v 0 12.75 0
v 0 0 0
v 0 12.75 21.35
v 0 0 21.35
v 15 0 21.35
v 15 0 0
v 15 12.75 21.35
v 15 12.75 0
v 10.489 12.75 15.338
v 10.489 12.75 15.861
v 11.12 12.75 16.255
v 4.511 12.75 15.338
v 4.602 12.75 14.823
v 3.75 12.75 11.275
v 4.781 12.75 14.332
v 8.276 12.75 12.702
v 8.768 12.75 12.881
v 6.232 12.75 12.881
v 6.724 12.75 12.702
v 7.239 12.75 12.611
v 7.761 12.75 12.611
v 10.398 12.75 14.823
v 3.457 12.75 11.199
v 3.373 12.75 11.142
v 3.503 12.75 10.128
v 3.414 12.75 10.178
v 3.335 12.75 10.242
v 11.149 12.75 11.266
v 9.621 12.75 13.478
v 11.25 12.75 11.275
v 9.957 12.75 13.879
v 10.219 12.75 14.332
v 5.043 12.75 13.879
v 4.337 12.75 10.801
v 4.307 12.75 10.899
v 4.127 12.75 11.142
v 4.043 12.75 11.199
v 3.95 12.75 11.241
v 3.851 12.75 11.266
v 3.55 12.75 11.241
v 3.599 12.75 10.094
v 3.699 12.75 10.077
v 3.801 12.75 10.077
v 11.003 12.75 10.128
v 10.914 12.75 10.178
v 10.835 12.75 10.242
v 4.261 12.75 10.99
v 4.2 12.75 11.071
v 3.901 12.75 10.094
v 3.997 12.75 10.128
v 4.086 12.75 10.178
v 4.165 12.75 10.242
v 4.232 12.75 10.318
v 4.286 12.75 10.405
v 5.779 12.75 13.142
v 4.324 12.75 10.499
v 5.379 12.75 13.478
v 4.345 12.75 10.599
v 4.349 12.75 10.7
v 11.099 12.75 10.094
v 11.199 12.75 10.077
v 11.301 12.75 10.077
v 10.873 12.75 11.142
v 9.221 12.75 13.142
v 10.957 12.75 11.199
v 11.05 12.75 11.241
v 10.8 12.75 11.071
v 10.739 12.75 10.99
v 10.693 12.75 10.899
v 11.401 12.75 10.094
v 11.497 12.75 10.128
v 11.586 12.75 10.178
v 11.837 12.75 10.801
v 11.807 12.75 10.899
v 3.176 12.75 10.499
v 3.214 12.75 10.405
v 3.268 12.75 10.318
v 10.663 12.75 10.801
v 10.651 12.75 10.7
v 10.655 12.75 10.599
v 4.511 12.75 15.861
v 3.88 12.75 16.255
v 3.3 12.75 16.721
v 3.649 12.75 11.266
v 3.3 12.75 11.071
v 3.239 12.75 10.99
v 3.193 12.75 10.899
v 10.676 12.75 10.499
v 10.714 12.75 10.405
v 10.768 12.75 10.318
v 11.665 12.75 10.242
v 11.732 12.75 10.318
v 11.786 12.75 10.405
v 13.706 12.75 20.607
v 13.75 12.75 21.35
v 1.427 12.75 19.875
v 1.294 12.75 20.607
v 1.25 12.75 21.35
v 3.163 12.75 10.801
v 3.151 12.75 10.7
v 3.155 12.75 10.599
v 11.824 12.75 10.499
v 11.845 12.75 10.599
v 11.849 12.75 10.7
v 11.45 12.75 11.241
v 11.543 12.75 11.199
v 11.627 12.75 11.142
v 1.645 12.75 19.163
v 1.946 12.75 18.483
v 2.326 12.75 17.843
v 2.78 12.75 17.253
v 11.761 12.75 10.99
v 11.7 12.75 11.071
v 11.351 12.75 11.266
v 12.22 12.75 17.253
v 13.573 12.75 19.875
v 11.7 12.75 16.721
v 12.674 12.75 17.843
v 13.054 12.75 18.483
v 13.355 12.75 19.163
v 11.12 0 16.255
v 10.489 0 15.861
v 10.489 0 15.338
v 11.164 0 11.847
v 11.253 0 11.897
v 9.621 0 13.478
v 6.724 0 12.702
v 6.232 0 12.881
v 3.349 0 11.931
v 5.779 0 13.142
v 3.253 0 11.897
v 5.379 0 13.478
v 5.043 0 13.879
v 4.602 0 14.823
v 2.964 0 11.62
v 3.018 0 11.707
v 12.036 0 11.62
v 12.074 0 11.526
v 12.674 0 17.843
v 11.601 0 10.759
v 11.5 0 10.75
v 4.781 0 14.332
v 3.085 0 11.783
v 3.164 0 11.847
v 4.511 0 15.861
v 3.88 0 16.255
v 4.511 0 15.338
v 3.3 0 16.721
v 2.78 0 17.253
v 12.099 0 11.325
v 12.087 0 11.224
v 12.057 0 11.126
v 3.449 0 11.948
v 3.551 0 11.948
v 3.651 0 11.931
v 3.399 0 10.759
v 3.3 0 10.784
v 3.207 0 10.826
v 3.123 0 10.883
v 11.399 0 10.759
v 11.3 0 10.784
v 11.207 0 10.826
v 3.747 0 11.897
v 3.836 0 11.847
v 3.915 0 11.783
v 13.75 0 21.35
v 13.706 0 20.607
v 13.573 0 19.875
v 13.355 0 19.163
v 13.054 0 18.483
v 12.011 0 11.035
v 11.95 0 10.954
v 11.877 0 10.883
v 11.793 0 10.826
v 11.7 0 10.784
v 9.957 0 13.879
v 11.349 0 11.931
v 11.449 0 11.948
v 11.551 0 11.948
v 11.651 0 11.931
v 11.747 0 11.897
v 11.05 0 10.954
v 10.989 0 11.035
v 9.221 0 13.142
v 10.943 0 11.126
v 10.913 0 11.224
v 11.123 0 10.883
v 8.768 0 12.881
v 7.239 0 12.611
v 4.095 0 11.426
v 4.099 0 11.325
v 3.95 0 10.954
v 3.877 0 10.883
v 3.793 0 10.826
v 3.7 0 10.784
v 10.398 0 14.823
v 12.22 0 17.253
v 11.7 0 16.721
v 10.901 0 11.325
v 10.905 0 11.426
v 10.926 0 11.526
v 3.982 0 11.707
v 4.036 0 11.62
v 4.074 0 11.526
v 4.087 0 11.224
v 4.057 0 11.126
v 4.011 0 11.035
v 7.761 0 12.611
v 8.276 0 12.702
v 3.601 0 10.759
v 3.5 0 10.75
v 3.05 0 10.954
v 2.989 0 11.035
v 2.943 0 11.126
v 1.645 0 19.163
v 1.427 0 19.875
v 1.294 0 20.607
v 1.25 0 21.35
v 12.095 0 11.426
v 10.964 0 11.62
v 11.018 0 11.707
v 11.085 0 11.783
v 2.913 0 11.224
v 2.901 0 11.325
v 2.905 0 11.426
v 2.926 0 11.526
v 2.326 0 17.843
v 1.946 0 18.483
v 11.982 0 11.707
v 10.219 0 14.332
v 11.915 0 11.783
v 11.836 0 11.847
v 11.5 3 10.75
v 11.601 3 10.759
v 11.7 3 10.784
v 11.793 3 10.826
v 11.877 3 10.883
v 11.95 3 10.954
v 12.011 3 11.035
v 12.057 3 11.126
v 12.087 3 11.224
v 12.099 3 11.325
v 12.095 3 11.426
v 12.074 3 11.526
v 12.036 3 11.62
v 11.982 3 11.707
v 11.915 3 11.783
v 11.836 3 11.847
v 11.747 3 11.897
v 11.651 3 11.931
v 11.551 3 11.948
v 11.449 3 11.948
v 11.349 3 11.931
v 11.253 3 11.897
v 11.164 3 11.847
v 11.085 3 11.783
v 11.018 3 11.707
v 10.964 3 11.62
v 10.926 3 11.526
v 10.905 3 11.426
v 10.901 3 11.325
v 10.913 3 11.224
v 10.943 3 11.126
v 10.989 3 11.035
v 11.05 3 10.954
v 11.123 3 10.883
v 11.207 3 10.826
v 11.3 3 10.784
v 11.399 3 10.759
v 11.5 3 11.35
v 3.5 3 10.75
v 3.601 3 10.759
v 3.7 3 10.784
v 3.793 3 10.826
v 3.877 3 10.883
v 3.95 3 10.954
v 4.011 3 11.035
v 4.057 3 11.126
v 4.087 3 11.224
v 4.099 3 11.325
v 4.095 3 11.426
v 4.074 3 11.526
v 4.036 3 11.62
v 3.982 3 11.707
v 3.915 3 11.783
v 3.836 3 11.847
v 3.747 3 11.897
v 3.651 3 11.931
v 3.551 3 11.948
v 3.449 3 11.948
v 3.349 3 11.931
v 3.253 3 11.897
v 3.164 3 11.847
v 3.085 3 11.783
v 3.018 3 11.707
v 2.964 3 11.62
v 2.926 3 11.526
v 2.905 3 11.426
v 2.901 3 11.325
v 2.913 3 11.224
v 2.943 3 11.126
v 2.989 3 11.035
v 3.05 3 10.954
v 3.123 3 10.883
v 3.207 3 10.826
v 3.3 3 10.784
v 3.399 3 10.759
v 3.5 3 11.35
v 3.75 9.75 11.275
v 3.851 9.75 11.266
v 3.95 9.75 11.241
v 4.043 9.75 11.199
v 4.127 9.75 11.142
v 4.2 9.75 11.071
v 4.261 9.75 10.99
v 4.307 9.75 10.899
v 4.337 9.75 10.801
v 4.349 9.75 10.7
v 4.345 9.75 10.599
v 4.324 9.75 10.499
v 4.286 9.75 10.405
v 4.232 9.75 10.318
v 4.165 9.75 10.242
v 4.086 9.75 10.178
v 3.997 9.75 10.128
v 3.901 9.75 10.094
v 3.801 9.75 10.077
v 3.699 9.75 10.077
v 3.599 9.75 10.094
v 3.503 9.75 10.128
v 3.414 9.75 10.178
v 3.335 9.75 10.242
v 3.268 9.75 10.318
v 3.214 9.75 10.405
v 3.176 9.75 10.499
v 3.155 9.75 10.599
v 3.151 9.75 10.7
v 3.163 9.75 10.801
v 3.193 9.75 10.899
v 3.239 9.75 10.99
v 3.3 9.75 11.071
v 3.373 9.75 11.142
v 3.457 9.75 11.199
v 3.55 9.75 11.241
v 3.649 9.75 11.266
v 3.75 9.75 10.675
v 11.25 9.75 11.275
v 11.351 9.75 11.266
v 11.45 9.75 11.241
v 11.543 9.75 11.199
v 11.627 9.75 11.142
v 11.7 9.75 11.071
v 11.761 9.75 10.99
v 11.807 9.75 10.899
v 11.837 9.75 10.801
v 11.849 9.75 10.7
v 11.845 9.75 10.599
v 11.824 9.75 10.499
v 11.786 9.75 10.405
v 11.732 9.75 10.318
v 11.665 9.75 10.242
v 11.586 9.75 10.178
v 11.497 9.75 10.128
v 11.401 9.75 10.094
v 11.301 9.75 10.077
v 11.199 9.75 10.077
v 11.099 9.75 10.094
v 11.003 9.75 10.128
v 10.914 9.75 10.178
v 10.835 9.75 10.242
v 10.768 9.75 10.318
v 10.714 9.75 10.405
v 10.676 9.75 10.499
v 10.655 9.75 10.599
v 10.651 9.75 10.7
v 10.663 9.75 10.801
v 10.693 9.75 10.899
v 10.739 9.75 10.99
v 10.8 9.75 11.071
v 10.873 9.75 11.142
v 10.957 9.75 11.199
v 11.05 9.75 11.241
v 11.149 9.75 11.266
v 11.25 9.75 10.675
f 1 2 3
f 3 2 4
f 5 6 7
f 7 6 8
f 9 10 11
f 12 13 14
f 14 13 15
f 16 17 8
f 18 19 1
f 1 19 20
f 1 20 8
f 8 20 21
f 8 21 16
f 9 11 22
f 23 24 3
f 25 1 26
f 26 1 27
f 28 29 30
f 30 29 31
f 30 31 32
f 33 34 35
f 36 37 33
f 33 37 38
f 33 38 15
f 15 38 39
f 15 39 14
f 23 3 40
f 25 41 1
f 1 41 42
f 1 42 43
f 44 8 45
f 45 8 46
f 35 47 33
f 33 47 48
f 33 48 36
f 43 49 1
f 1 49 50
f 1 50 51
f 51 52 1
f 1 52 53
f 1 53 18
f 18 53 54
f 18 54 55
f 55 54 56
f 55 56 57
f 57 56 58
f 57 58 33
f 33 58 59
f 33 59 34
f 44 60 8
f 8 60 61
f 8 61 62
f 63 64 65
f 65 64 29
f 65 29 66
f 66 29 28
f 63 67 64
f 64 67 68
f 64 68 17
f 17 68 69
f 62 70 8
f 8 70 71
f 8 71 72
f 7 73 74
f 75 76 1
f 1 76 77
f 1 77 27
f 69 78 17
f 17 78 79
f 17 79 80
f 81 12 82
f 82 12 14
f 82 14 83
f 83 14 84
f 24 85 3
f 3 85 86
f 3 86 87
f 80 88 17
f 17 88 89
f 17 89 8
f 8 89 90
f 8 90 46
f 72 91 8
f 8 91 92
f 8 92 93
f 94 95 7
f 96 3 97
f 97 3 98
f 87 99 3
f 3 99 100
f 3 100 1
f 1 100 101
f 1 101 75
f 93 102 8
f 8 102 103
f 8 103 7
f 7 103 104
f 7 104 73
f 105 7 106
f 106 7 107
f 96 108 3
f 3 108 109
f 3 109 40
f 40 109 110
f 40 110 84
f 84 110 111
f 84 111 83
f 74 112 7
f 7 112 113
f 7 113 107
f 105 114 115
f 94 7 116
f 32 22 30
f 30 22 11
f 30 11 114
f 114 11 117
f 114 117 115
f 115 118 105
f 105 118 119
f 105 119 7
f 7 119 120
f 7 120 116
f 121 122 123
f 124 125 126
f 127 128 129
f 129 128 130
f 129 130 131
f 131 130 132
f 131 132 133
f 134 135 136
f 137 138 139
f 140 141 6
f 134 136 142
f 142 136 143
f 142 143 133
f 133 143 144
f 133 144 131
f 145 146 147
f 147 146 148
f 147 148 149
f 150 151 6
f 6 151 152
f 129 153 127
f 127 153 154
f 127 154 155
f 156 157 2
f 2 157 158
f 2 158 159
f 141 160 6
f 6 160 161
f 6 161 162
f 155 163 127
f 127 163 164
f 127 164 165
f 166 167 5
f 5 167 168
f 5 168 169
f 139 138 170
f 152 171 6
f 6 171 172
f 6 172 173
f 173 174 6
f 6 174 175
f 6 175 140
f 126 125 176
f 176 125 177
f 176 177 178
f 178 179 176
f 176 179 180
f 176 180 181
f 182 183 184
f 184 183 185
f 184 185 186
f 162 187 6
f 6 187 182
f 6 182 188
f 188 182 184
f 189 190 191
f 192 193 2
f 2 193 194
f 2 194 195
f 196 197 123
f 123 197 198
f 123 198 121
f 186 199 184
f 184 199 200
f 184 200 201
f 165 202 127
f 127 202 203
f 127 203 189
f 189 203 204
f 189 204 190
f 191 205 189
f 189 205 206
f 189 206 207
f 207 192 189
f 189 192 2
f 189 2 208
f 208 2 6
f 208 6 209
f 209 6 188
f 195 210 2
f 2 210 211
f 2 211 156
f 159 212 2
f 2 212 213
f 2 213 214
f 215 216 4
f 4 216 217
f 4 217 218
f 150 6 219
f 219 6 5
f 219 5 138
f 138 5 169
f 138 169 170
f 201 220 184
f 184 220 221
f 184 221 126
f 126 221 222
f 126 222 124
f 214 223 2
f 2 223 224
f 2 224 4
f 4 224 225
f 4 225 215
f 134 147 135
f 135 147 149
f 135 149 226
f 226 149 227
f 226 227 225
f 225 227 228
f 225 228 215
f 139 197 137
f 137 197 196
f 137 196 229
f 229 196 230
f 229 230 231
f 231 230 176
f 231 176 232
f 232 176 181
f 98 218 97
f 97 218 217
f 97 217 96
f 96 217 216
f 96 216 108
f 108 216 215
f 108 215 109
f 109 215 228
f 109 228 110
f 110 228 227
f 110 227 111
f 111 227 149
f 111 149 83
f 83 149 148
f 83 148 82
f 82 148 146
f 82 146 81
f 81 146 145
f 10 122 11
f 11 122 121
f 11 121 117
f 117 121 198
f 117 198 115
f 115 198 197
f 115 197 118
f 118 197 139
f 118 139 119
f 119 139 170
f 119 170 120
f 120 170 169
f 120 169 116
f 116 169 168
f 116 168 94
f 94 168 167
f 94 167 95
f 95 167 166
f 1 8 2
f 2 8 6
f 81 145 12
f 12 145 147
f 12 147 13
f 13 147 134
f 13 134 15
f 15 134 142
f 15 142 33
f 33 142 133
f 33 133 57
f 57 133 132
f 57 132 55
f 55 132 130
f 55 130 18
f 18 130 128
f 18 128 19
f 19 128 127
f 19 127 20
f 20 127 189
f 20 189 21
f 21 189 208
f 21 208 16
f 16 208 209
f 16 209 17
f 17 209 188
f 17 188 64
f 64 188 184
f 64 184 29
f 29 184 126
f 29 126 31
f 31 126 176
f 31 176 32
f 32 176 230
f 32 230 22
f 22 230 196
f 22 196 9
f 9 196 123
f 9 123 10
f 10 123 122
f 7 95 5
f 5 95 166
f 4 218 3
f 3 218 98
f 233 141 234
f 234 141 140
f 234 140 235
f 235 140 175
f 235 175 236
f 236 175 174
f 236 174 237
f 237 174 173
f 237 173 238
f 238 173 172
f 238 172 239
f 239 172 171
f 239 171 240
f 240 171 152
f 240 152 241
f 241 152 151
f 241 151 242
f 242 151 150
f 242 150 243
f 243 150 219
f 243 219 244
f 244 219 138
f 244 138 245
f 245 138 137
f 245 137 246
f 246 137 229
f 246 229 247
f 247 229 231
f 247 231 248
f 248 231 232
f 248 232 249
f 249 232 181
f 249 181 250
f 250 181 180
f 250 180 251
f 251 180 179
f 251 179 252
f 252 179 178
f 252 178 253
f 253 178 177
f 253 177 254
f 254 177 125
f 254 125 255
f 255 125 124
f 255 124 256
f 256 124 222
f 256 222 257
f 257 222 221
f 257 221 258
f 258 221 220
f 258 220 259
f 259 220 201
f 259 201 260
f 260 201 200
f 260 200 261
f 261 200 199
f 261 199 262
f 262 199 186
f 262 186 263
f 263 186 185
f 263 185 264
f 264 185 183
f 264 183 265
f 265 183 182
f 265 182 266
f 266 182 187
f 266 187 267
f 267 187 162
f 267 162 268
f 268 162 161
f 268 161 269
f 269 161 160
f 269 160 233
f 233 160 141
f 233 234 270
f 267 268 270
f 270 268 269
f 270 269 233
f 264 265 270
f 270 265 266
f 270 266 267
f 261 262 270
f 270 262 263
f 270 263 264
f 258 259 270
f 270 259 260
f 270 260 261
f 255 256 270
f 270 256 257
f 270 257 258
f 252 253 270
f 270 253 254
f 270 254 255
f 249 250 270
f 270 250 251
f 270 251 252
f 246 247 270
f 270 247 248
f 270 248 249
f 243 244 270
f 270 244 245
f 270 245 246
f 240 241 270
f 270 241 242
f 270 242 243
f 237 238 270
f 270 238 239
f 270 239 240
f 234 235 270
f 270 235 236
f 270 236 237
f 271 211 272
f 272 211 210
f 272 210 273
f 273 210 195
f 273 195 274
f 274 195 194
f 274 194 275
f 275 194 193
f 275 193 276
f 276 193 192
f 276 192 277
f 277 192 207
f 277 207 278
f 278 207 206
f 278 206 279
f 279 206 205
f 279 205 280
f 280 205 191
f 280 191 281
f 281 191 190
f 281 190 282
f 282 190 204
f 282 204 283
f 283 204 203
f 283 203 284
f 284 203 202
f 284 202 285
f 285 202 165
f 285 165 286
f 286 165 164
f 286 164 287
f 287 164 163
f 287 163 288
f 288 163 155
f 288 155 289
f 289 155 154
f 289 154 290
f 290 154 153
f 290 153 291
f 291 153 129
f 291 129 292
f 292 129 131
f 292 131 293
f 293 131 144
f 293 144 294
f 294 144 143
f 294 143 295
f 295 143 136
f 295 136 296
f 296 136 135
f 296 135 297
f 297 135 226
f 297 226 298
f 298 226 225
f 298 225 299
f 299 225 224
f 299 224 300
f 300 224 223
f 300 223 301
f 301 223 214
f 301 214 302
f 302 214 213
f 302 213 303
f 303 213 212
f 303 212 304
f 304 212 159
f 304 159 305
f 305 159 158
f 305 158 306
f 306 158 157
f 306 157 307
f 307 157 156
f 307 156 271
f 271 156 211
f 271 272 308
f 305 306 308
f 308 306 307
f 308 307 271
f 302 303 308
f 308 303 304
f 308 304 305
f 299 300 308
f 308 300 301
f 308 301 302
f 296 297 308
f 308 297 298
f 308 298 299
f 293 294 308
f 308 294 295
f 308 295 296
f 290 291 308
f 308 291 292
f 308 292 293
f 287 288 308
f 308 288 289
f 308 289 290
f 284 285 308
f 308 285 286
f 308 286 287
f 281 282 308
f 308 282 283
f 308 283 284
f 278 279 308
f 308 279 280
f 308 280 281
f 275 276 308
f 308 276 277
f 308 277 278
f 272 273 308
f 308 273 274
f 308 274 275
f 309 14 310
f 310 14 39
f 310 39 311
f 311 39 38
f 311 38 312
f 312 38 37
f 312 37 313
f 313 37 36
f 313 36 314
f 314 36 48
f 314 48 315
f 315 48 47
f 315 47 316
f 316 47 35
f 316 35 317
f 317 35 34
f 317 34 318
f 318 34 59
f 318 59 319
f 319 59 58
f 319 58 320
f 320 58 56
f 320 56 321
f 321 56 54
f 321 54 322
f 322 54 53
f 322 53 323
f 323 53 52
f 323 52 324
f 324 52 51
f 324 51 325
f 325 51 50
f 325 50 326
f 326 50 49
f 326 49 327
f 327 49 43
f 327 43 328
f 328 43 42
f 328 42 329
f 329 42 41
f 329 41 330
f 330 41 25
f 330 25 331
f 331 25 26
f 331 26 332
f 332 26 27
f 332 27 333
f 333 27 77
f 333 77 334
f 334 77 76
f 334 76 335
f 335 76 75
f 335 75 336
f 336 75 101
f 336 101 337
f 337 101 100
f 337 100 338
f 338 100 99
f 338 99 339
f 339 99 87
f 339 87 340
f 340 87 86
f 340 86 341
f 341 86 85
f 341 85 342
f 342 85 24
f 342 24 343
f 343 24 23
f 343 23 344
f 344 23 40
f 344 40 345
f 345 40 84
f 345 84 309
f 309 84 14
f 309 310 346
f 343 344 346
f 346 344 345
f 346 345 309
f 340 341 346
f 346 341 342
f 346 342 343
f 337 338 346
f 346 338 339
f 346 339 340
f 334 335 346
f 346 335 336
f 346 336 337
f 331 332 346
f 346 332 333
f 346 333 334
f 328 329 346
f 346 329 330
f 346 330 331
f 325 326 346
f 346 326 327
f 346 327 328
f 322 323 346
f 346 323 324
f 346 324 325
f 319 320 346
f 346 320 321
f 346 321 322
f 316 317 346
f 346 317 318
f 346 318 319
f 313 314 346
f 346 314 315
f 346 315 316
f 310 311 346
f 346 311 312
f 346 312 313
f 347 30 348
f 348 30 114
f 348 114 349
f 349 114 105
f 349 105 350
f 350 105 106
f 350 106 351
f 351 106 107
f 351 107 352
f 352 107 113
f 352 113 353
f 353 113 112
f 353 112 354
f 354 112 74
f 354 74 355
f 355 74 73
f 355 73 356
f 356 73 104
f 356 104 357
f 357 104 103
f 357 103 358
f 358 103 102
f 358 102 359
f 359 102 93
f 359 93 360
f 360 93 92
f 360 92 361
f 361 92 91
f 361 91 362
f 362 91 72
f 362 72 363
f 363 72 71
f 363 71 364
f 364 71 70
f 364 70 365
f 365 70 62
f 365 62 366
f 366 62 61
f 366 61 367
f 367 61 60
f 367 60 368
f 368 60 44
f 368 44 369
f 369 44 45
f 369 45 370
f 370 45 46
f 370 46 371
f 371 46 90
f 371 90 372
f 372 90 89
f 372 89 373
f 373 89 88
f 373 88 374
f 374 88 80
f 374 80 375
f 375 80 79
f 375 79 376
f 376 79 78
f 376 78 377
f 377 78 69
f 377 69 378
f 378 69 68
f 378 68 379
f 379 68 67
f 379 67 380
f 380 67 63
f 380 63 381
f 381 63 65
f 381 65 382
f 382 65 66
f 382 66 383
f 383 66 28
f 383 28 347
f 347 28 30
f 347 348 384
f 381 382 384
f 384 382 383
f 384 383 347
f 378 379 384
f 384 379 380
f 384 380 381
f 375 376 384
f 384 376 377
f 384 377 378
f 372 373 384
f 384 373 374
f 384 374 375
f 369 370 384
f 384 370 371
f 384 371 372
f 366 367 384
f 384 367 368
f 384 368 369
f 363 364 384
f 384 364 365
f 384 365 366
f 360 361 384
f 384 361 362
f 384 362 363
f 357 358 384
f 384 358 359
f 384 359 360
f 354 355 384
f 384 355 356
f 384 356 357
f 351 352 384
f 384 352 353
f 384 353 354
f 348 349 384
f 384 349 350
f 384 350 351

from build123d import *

# Parameters (mm, degrees)
SKETCH_1_W           = 15
SKETCH_1_H           = 32.4
EXTRUDE_1_DEPTH      = 12.75
SKETCH_1_3_R         = 6.25
SKETCH_1_3_R_2       = 3
CUT_EXTRUDE_1_DEPTH  = 38.912036347
SKETCH_2_OUTSIDE_W   = 24.582
SKETCH_2_OUTSIDE_H   = 41.982
SKETCH_2_OUTSIDE_W_2 = 15
SKETCH_2_OUTSIDE_H_2 = 21.35
CUT_EXTRUDE_2_DEPTH  = 38.912036347
SKETCH_3_R           = 0.6
CUT_EXTRUDE_3_DEPTH  = 3
SKETCH_4_R           = 0.6
CUT_EXTRUDE_4_DEPTH  = 3


with BuildPart() as part:
    # 草图1 → 凸台-拉伸1 (new body)
    with BuildSketch(Plane(origin=(0, 0, 0), x_dir=(1, 0, 0), z_dir=(0, 1, 0))):
        with Locations((7.5, -16.2)):
            Rectangle(SKETCH_1_W, SKETCH_1_H)
    extrude(amount=EXTRUDE_1_DEPTH)

    # 草图1<3> → 切除-拉伸1 (cut, through all)
    with BuildSketch(Plane(origin=(0, 0, 0), x_dir=(1, 0, 0), z_dir=(0, 1, 0))):
        with Locations((7.5, -21.35)):
            Circle(SKETCH_1_3_R)
        with Locations((7.5, -15.6)):
            Circle(SKETCH_1_3_R_2)
    extrude(amount=CUT_EXTRUDE_1_DEPTH, mode=Mode.SUBTRACT)

    # 草图2 outside → 切除-拉伸2 (cut, through all)
    with BuildSketch(Plane(origin=(0, 12.75, 0), x_dir=(1, 0, 0), z_dir=(0, 1, 0))):
        with Locations((7.5, -16.2)):
            Rectangle(SKETCH_2_OUTSIDE_W, SKETCH_2_OUTSIDE_H)
        with Locations((7.5, -10.675)):
            Rectangle(SKETCH_2_OUTSIDE_W_2, SKETCH_2_OUTSIDE_H_2, mode=Mode.SUBTRACT)
    extrude(amount=-CUT_EXTRUDE_2_DEPTH, mode=Mode.SUBTRACT)

    # 草图3 → 切除-拉伸3 (cut)
    with BuildSketch(Plane.XZ):
        with Locations((3.5, 11.35)):
            Circle(SKETCH_3_R)
        with Locations((11.5, 11.35)):
            Circle(SKETCH_3_R)
    extrude(amount=-CUT_EXTRUDE_3_DEPTH, mode=Mode.SUBTRACT)

    # 草图4 → 切除-拉伸4 (cut)
    with BuildSketch(Plane(origin=(0, 12.75, 0), x_dir=(1, 0, 0), z_dir=(0, 1, 0))):
        with Locations((11.25, -10.675)):
            Circle(SKETCH_4_R)
        with Locations((3.75, -10.675)):
            Circle(SKETCH_4_R)
    extrude(amount=-CUT_EXTRUDE_4_DEPTH, mode=Mode.SUBTRACT)


solid = part.part
